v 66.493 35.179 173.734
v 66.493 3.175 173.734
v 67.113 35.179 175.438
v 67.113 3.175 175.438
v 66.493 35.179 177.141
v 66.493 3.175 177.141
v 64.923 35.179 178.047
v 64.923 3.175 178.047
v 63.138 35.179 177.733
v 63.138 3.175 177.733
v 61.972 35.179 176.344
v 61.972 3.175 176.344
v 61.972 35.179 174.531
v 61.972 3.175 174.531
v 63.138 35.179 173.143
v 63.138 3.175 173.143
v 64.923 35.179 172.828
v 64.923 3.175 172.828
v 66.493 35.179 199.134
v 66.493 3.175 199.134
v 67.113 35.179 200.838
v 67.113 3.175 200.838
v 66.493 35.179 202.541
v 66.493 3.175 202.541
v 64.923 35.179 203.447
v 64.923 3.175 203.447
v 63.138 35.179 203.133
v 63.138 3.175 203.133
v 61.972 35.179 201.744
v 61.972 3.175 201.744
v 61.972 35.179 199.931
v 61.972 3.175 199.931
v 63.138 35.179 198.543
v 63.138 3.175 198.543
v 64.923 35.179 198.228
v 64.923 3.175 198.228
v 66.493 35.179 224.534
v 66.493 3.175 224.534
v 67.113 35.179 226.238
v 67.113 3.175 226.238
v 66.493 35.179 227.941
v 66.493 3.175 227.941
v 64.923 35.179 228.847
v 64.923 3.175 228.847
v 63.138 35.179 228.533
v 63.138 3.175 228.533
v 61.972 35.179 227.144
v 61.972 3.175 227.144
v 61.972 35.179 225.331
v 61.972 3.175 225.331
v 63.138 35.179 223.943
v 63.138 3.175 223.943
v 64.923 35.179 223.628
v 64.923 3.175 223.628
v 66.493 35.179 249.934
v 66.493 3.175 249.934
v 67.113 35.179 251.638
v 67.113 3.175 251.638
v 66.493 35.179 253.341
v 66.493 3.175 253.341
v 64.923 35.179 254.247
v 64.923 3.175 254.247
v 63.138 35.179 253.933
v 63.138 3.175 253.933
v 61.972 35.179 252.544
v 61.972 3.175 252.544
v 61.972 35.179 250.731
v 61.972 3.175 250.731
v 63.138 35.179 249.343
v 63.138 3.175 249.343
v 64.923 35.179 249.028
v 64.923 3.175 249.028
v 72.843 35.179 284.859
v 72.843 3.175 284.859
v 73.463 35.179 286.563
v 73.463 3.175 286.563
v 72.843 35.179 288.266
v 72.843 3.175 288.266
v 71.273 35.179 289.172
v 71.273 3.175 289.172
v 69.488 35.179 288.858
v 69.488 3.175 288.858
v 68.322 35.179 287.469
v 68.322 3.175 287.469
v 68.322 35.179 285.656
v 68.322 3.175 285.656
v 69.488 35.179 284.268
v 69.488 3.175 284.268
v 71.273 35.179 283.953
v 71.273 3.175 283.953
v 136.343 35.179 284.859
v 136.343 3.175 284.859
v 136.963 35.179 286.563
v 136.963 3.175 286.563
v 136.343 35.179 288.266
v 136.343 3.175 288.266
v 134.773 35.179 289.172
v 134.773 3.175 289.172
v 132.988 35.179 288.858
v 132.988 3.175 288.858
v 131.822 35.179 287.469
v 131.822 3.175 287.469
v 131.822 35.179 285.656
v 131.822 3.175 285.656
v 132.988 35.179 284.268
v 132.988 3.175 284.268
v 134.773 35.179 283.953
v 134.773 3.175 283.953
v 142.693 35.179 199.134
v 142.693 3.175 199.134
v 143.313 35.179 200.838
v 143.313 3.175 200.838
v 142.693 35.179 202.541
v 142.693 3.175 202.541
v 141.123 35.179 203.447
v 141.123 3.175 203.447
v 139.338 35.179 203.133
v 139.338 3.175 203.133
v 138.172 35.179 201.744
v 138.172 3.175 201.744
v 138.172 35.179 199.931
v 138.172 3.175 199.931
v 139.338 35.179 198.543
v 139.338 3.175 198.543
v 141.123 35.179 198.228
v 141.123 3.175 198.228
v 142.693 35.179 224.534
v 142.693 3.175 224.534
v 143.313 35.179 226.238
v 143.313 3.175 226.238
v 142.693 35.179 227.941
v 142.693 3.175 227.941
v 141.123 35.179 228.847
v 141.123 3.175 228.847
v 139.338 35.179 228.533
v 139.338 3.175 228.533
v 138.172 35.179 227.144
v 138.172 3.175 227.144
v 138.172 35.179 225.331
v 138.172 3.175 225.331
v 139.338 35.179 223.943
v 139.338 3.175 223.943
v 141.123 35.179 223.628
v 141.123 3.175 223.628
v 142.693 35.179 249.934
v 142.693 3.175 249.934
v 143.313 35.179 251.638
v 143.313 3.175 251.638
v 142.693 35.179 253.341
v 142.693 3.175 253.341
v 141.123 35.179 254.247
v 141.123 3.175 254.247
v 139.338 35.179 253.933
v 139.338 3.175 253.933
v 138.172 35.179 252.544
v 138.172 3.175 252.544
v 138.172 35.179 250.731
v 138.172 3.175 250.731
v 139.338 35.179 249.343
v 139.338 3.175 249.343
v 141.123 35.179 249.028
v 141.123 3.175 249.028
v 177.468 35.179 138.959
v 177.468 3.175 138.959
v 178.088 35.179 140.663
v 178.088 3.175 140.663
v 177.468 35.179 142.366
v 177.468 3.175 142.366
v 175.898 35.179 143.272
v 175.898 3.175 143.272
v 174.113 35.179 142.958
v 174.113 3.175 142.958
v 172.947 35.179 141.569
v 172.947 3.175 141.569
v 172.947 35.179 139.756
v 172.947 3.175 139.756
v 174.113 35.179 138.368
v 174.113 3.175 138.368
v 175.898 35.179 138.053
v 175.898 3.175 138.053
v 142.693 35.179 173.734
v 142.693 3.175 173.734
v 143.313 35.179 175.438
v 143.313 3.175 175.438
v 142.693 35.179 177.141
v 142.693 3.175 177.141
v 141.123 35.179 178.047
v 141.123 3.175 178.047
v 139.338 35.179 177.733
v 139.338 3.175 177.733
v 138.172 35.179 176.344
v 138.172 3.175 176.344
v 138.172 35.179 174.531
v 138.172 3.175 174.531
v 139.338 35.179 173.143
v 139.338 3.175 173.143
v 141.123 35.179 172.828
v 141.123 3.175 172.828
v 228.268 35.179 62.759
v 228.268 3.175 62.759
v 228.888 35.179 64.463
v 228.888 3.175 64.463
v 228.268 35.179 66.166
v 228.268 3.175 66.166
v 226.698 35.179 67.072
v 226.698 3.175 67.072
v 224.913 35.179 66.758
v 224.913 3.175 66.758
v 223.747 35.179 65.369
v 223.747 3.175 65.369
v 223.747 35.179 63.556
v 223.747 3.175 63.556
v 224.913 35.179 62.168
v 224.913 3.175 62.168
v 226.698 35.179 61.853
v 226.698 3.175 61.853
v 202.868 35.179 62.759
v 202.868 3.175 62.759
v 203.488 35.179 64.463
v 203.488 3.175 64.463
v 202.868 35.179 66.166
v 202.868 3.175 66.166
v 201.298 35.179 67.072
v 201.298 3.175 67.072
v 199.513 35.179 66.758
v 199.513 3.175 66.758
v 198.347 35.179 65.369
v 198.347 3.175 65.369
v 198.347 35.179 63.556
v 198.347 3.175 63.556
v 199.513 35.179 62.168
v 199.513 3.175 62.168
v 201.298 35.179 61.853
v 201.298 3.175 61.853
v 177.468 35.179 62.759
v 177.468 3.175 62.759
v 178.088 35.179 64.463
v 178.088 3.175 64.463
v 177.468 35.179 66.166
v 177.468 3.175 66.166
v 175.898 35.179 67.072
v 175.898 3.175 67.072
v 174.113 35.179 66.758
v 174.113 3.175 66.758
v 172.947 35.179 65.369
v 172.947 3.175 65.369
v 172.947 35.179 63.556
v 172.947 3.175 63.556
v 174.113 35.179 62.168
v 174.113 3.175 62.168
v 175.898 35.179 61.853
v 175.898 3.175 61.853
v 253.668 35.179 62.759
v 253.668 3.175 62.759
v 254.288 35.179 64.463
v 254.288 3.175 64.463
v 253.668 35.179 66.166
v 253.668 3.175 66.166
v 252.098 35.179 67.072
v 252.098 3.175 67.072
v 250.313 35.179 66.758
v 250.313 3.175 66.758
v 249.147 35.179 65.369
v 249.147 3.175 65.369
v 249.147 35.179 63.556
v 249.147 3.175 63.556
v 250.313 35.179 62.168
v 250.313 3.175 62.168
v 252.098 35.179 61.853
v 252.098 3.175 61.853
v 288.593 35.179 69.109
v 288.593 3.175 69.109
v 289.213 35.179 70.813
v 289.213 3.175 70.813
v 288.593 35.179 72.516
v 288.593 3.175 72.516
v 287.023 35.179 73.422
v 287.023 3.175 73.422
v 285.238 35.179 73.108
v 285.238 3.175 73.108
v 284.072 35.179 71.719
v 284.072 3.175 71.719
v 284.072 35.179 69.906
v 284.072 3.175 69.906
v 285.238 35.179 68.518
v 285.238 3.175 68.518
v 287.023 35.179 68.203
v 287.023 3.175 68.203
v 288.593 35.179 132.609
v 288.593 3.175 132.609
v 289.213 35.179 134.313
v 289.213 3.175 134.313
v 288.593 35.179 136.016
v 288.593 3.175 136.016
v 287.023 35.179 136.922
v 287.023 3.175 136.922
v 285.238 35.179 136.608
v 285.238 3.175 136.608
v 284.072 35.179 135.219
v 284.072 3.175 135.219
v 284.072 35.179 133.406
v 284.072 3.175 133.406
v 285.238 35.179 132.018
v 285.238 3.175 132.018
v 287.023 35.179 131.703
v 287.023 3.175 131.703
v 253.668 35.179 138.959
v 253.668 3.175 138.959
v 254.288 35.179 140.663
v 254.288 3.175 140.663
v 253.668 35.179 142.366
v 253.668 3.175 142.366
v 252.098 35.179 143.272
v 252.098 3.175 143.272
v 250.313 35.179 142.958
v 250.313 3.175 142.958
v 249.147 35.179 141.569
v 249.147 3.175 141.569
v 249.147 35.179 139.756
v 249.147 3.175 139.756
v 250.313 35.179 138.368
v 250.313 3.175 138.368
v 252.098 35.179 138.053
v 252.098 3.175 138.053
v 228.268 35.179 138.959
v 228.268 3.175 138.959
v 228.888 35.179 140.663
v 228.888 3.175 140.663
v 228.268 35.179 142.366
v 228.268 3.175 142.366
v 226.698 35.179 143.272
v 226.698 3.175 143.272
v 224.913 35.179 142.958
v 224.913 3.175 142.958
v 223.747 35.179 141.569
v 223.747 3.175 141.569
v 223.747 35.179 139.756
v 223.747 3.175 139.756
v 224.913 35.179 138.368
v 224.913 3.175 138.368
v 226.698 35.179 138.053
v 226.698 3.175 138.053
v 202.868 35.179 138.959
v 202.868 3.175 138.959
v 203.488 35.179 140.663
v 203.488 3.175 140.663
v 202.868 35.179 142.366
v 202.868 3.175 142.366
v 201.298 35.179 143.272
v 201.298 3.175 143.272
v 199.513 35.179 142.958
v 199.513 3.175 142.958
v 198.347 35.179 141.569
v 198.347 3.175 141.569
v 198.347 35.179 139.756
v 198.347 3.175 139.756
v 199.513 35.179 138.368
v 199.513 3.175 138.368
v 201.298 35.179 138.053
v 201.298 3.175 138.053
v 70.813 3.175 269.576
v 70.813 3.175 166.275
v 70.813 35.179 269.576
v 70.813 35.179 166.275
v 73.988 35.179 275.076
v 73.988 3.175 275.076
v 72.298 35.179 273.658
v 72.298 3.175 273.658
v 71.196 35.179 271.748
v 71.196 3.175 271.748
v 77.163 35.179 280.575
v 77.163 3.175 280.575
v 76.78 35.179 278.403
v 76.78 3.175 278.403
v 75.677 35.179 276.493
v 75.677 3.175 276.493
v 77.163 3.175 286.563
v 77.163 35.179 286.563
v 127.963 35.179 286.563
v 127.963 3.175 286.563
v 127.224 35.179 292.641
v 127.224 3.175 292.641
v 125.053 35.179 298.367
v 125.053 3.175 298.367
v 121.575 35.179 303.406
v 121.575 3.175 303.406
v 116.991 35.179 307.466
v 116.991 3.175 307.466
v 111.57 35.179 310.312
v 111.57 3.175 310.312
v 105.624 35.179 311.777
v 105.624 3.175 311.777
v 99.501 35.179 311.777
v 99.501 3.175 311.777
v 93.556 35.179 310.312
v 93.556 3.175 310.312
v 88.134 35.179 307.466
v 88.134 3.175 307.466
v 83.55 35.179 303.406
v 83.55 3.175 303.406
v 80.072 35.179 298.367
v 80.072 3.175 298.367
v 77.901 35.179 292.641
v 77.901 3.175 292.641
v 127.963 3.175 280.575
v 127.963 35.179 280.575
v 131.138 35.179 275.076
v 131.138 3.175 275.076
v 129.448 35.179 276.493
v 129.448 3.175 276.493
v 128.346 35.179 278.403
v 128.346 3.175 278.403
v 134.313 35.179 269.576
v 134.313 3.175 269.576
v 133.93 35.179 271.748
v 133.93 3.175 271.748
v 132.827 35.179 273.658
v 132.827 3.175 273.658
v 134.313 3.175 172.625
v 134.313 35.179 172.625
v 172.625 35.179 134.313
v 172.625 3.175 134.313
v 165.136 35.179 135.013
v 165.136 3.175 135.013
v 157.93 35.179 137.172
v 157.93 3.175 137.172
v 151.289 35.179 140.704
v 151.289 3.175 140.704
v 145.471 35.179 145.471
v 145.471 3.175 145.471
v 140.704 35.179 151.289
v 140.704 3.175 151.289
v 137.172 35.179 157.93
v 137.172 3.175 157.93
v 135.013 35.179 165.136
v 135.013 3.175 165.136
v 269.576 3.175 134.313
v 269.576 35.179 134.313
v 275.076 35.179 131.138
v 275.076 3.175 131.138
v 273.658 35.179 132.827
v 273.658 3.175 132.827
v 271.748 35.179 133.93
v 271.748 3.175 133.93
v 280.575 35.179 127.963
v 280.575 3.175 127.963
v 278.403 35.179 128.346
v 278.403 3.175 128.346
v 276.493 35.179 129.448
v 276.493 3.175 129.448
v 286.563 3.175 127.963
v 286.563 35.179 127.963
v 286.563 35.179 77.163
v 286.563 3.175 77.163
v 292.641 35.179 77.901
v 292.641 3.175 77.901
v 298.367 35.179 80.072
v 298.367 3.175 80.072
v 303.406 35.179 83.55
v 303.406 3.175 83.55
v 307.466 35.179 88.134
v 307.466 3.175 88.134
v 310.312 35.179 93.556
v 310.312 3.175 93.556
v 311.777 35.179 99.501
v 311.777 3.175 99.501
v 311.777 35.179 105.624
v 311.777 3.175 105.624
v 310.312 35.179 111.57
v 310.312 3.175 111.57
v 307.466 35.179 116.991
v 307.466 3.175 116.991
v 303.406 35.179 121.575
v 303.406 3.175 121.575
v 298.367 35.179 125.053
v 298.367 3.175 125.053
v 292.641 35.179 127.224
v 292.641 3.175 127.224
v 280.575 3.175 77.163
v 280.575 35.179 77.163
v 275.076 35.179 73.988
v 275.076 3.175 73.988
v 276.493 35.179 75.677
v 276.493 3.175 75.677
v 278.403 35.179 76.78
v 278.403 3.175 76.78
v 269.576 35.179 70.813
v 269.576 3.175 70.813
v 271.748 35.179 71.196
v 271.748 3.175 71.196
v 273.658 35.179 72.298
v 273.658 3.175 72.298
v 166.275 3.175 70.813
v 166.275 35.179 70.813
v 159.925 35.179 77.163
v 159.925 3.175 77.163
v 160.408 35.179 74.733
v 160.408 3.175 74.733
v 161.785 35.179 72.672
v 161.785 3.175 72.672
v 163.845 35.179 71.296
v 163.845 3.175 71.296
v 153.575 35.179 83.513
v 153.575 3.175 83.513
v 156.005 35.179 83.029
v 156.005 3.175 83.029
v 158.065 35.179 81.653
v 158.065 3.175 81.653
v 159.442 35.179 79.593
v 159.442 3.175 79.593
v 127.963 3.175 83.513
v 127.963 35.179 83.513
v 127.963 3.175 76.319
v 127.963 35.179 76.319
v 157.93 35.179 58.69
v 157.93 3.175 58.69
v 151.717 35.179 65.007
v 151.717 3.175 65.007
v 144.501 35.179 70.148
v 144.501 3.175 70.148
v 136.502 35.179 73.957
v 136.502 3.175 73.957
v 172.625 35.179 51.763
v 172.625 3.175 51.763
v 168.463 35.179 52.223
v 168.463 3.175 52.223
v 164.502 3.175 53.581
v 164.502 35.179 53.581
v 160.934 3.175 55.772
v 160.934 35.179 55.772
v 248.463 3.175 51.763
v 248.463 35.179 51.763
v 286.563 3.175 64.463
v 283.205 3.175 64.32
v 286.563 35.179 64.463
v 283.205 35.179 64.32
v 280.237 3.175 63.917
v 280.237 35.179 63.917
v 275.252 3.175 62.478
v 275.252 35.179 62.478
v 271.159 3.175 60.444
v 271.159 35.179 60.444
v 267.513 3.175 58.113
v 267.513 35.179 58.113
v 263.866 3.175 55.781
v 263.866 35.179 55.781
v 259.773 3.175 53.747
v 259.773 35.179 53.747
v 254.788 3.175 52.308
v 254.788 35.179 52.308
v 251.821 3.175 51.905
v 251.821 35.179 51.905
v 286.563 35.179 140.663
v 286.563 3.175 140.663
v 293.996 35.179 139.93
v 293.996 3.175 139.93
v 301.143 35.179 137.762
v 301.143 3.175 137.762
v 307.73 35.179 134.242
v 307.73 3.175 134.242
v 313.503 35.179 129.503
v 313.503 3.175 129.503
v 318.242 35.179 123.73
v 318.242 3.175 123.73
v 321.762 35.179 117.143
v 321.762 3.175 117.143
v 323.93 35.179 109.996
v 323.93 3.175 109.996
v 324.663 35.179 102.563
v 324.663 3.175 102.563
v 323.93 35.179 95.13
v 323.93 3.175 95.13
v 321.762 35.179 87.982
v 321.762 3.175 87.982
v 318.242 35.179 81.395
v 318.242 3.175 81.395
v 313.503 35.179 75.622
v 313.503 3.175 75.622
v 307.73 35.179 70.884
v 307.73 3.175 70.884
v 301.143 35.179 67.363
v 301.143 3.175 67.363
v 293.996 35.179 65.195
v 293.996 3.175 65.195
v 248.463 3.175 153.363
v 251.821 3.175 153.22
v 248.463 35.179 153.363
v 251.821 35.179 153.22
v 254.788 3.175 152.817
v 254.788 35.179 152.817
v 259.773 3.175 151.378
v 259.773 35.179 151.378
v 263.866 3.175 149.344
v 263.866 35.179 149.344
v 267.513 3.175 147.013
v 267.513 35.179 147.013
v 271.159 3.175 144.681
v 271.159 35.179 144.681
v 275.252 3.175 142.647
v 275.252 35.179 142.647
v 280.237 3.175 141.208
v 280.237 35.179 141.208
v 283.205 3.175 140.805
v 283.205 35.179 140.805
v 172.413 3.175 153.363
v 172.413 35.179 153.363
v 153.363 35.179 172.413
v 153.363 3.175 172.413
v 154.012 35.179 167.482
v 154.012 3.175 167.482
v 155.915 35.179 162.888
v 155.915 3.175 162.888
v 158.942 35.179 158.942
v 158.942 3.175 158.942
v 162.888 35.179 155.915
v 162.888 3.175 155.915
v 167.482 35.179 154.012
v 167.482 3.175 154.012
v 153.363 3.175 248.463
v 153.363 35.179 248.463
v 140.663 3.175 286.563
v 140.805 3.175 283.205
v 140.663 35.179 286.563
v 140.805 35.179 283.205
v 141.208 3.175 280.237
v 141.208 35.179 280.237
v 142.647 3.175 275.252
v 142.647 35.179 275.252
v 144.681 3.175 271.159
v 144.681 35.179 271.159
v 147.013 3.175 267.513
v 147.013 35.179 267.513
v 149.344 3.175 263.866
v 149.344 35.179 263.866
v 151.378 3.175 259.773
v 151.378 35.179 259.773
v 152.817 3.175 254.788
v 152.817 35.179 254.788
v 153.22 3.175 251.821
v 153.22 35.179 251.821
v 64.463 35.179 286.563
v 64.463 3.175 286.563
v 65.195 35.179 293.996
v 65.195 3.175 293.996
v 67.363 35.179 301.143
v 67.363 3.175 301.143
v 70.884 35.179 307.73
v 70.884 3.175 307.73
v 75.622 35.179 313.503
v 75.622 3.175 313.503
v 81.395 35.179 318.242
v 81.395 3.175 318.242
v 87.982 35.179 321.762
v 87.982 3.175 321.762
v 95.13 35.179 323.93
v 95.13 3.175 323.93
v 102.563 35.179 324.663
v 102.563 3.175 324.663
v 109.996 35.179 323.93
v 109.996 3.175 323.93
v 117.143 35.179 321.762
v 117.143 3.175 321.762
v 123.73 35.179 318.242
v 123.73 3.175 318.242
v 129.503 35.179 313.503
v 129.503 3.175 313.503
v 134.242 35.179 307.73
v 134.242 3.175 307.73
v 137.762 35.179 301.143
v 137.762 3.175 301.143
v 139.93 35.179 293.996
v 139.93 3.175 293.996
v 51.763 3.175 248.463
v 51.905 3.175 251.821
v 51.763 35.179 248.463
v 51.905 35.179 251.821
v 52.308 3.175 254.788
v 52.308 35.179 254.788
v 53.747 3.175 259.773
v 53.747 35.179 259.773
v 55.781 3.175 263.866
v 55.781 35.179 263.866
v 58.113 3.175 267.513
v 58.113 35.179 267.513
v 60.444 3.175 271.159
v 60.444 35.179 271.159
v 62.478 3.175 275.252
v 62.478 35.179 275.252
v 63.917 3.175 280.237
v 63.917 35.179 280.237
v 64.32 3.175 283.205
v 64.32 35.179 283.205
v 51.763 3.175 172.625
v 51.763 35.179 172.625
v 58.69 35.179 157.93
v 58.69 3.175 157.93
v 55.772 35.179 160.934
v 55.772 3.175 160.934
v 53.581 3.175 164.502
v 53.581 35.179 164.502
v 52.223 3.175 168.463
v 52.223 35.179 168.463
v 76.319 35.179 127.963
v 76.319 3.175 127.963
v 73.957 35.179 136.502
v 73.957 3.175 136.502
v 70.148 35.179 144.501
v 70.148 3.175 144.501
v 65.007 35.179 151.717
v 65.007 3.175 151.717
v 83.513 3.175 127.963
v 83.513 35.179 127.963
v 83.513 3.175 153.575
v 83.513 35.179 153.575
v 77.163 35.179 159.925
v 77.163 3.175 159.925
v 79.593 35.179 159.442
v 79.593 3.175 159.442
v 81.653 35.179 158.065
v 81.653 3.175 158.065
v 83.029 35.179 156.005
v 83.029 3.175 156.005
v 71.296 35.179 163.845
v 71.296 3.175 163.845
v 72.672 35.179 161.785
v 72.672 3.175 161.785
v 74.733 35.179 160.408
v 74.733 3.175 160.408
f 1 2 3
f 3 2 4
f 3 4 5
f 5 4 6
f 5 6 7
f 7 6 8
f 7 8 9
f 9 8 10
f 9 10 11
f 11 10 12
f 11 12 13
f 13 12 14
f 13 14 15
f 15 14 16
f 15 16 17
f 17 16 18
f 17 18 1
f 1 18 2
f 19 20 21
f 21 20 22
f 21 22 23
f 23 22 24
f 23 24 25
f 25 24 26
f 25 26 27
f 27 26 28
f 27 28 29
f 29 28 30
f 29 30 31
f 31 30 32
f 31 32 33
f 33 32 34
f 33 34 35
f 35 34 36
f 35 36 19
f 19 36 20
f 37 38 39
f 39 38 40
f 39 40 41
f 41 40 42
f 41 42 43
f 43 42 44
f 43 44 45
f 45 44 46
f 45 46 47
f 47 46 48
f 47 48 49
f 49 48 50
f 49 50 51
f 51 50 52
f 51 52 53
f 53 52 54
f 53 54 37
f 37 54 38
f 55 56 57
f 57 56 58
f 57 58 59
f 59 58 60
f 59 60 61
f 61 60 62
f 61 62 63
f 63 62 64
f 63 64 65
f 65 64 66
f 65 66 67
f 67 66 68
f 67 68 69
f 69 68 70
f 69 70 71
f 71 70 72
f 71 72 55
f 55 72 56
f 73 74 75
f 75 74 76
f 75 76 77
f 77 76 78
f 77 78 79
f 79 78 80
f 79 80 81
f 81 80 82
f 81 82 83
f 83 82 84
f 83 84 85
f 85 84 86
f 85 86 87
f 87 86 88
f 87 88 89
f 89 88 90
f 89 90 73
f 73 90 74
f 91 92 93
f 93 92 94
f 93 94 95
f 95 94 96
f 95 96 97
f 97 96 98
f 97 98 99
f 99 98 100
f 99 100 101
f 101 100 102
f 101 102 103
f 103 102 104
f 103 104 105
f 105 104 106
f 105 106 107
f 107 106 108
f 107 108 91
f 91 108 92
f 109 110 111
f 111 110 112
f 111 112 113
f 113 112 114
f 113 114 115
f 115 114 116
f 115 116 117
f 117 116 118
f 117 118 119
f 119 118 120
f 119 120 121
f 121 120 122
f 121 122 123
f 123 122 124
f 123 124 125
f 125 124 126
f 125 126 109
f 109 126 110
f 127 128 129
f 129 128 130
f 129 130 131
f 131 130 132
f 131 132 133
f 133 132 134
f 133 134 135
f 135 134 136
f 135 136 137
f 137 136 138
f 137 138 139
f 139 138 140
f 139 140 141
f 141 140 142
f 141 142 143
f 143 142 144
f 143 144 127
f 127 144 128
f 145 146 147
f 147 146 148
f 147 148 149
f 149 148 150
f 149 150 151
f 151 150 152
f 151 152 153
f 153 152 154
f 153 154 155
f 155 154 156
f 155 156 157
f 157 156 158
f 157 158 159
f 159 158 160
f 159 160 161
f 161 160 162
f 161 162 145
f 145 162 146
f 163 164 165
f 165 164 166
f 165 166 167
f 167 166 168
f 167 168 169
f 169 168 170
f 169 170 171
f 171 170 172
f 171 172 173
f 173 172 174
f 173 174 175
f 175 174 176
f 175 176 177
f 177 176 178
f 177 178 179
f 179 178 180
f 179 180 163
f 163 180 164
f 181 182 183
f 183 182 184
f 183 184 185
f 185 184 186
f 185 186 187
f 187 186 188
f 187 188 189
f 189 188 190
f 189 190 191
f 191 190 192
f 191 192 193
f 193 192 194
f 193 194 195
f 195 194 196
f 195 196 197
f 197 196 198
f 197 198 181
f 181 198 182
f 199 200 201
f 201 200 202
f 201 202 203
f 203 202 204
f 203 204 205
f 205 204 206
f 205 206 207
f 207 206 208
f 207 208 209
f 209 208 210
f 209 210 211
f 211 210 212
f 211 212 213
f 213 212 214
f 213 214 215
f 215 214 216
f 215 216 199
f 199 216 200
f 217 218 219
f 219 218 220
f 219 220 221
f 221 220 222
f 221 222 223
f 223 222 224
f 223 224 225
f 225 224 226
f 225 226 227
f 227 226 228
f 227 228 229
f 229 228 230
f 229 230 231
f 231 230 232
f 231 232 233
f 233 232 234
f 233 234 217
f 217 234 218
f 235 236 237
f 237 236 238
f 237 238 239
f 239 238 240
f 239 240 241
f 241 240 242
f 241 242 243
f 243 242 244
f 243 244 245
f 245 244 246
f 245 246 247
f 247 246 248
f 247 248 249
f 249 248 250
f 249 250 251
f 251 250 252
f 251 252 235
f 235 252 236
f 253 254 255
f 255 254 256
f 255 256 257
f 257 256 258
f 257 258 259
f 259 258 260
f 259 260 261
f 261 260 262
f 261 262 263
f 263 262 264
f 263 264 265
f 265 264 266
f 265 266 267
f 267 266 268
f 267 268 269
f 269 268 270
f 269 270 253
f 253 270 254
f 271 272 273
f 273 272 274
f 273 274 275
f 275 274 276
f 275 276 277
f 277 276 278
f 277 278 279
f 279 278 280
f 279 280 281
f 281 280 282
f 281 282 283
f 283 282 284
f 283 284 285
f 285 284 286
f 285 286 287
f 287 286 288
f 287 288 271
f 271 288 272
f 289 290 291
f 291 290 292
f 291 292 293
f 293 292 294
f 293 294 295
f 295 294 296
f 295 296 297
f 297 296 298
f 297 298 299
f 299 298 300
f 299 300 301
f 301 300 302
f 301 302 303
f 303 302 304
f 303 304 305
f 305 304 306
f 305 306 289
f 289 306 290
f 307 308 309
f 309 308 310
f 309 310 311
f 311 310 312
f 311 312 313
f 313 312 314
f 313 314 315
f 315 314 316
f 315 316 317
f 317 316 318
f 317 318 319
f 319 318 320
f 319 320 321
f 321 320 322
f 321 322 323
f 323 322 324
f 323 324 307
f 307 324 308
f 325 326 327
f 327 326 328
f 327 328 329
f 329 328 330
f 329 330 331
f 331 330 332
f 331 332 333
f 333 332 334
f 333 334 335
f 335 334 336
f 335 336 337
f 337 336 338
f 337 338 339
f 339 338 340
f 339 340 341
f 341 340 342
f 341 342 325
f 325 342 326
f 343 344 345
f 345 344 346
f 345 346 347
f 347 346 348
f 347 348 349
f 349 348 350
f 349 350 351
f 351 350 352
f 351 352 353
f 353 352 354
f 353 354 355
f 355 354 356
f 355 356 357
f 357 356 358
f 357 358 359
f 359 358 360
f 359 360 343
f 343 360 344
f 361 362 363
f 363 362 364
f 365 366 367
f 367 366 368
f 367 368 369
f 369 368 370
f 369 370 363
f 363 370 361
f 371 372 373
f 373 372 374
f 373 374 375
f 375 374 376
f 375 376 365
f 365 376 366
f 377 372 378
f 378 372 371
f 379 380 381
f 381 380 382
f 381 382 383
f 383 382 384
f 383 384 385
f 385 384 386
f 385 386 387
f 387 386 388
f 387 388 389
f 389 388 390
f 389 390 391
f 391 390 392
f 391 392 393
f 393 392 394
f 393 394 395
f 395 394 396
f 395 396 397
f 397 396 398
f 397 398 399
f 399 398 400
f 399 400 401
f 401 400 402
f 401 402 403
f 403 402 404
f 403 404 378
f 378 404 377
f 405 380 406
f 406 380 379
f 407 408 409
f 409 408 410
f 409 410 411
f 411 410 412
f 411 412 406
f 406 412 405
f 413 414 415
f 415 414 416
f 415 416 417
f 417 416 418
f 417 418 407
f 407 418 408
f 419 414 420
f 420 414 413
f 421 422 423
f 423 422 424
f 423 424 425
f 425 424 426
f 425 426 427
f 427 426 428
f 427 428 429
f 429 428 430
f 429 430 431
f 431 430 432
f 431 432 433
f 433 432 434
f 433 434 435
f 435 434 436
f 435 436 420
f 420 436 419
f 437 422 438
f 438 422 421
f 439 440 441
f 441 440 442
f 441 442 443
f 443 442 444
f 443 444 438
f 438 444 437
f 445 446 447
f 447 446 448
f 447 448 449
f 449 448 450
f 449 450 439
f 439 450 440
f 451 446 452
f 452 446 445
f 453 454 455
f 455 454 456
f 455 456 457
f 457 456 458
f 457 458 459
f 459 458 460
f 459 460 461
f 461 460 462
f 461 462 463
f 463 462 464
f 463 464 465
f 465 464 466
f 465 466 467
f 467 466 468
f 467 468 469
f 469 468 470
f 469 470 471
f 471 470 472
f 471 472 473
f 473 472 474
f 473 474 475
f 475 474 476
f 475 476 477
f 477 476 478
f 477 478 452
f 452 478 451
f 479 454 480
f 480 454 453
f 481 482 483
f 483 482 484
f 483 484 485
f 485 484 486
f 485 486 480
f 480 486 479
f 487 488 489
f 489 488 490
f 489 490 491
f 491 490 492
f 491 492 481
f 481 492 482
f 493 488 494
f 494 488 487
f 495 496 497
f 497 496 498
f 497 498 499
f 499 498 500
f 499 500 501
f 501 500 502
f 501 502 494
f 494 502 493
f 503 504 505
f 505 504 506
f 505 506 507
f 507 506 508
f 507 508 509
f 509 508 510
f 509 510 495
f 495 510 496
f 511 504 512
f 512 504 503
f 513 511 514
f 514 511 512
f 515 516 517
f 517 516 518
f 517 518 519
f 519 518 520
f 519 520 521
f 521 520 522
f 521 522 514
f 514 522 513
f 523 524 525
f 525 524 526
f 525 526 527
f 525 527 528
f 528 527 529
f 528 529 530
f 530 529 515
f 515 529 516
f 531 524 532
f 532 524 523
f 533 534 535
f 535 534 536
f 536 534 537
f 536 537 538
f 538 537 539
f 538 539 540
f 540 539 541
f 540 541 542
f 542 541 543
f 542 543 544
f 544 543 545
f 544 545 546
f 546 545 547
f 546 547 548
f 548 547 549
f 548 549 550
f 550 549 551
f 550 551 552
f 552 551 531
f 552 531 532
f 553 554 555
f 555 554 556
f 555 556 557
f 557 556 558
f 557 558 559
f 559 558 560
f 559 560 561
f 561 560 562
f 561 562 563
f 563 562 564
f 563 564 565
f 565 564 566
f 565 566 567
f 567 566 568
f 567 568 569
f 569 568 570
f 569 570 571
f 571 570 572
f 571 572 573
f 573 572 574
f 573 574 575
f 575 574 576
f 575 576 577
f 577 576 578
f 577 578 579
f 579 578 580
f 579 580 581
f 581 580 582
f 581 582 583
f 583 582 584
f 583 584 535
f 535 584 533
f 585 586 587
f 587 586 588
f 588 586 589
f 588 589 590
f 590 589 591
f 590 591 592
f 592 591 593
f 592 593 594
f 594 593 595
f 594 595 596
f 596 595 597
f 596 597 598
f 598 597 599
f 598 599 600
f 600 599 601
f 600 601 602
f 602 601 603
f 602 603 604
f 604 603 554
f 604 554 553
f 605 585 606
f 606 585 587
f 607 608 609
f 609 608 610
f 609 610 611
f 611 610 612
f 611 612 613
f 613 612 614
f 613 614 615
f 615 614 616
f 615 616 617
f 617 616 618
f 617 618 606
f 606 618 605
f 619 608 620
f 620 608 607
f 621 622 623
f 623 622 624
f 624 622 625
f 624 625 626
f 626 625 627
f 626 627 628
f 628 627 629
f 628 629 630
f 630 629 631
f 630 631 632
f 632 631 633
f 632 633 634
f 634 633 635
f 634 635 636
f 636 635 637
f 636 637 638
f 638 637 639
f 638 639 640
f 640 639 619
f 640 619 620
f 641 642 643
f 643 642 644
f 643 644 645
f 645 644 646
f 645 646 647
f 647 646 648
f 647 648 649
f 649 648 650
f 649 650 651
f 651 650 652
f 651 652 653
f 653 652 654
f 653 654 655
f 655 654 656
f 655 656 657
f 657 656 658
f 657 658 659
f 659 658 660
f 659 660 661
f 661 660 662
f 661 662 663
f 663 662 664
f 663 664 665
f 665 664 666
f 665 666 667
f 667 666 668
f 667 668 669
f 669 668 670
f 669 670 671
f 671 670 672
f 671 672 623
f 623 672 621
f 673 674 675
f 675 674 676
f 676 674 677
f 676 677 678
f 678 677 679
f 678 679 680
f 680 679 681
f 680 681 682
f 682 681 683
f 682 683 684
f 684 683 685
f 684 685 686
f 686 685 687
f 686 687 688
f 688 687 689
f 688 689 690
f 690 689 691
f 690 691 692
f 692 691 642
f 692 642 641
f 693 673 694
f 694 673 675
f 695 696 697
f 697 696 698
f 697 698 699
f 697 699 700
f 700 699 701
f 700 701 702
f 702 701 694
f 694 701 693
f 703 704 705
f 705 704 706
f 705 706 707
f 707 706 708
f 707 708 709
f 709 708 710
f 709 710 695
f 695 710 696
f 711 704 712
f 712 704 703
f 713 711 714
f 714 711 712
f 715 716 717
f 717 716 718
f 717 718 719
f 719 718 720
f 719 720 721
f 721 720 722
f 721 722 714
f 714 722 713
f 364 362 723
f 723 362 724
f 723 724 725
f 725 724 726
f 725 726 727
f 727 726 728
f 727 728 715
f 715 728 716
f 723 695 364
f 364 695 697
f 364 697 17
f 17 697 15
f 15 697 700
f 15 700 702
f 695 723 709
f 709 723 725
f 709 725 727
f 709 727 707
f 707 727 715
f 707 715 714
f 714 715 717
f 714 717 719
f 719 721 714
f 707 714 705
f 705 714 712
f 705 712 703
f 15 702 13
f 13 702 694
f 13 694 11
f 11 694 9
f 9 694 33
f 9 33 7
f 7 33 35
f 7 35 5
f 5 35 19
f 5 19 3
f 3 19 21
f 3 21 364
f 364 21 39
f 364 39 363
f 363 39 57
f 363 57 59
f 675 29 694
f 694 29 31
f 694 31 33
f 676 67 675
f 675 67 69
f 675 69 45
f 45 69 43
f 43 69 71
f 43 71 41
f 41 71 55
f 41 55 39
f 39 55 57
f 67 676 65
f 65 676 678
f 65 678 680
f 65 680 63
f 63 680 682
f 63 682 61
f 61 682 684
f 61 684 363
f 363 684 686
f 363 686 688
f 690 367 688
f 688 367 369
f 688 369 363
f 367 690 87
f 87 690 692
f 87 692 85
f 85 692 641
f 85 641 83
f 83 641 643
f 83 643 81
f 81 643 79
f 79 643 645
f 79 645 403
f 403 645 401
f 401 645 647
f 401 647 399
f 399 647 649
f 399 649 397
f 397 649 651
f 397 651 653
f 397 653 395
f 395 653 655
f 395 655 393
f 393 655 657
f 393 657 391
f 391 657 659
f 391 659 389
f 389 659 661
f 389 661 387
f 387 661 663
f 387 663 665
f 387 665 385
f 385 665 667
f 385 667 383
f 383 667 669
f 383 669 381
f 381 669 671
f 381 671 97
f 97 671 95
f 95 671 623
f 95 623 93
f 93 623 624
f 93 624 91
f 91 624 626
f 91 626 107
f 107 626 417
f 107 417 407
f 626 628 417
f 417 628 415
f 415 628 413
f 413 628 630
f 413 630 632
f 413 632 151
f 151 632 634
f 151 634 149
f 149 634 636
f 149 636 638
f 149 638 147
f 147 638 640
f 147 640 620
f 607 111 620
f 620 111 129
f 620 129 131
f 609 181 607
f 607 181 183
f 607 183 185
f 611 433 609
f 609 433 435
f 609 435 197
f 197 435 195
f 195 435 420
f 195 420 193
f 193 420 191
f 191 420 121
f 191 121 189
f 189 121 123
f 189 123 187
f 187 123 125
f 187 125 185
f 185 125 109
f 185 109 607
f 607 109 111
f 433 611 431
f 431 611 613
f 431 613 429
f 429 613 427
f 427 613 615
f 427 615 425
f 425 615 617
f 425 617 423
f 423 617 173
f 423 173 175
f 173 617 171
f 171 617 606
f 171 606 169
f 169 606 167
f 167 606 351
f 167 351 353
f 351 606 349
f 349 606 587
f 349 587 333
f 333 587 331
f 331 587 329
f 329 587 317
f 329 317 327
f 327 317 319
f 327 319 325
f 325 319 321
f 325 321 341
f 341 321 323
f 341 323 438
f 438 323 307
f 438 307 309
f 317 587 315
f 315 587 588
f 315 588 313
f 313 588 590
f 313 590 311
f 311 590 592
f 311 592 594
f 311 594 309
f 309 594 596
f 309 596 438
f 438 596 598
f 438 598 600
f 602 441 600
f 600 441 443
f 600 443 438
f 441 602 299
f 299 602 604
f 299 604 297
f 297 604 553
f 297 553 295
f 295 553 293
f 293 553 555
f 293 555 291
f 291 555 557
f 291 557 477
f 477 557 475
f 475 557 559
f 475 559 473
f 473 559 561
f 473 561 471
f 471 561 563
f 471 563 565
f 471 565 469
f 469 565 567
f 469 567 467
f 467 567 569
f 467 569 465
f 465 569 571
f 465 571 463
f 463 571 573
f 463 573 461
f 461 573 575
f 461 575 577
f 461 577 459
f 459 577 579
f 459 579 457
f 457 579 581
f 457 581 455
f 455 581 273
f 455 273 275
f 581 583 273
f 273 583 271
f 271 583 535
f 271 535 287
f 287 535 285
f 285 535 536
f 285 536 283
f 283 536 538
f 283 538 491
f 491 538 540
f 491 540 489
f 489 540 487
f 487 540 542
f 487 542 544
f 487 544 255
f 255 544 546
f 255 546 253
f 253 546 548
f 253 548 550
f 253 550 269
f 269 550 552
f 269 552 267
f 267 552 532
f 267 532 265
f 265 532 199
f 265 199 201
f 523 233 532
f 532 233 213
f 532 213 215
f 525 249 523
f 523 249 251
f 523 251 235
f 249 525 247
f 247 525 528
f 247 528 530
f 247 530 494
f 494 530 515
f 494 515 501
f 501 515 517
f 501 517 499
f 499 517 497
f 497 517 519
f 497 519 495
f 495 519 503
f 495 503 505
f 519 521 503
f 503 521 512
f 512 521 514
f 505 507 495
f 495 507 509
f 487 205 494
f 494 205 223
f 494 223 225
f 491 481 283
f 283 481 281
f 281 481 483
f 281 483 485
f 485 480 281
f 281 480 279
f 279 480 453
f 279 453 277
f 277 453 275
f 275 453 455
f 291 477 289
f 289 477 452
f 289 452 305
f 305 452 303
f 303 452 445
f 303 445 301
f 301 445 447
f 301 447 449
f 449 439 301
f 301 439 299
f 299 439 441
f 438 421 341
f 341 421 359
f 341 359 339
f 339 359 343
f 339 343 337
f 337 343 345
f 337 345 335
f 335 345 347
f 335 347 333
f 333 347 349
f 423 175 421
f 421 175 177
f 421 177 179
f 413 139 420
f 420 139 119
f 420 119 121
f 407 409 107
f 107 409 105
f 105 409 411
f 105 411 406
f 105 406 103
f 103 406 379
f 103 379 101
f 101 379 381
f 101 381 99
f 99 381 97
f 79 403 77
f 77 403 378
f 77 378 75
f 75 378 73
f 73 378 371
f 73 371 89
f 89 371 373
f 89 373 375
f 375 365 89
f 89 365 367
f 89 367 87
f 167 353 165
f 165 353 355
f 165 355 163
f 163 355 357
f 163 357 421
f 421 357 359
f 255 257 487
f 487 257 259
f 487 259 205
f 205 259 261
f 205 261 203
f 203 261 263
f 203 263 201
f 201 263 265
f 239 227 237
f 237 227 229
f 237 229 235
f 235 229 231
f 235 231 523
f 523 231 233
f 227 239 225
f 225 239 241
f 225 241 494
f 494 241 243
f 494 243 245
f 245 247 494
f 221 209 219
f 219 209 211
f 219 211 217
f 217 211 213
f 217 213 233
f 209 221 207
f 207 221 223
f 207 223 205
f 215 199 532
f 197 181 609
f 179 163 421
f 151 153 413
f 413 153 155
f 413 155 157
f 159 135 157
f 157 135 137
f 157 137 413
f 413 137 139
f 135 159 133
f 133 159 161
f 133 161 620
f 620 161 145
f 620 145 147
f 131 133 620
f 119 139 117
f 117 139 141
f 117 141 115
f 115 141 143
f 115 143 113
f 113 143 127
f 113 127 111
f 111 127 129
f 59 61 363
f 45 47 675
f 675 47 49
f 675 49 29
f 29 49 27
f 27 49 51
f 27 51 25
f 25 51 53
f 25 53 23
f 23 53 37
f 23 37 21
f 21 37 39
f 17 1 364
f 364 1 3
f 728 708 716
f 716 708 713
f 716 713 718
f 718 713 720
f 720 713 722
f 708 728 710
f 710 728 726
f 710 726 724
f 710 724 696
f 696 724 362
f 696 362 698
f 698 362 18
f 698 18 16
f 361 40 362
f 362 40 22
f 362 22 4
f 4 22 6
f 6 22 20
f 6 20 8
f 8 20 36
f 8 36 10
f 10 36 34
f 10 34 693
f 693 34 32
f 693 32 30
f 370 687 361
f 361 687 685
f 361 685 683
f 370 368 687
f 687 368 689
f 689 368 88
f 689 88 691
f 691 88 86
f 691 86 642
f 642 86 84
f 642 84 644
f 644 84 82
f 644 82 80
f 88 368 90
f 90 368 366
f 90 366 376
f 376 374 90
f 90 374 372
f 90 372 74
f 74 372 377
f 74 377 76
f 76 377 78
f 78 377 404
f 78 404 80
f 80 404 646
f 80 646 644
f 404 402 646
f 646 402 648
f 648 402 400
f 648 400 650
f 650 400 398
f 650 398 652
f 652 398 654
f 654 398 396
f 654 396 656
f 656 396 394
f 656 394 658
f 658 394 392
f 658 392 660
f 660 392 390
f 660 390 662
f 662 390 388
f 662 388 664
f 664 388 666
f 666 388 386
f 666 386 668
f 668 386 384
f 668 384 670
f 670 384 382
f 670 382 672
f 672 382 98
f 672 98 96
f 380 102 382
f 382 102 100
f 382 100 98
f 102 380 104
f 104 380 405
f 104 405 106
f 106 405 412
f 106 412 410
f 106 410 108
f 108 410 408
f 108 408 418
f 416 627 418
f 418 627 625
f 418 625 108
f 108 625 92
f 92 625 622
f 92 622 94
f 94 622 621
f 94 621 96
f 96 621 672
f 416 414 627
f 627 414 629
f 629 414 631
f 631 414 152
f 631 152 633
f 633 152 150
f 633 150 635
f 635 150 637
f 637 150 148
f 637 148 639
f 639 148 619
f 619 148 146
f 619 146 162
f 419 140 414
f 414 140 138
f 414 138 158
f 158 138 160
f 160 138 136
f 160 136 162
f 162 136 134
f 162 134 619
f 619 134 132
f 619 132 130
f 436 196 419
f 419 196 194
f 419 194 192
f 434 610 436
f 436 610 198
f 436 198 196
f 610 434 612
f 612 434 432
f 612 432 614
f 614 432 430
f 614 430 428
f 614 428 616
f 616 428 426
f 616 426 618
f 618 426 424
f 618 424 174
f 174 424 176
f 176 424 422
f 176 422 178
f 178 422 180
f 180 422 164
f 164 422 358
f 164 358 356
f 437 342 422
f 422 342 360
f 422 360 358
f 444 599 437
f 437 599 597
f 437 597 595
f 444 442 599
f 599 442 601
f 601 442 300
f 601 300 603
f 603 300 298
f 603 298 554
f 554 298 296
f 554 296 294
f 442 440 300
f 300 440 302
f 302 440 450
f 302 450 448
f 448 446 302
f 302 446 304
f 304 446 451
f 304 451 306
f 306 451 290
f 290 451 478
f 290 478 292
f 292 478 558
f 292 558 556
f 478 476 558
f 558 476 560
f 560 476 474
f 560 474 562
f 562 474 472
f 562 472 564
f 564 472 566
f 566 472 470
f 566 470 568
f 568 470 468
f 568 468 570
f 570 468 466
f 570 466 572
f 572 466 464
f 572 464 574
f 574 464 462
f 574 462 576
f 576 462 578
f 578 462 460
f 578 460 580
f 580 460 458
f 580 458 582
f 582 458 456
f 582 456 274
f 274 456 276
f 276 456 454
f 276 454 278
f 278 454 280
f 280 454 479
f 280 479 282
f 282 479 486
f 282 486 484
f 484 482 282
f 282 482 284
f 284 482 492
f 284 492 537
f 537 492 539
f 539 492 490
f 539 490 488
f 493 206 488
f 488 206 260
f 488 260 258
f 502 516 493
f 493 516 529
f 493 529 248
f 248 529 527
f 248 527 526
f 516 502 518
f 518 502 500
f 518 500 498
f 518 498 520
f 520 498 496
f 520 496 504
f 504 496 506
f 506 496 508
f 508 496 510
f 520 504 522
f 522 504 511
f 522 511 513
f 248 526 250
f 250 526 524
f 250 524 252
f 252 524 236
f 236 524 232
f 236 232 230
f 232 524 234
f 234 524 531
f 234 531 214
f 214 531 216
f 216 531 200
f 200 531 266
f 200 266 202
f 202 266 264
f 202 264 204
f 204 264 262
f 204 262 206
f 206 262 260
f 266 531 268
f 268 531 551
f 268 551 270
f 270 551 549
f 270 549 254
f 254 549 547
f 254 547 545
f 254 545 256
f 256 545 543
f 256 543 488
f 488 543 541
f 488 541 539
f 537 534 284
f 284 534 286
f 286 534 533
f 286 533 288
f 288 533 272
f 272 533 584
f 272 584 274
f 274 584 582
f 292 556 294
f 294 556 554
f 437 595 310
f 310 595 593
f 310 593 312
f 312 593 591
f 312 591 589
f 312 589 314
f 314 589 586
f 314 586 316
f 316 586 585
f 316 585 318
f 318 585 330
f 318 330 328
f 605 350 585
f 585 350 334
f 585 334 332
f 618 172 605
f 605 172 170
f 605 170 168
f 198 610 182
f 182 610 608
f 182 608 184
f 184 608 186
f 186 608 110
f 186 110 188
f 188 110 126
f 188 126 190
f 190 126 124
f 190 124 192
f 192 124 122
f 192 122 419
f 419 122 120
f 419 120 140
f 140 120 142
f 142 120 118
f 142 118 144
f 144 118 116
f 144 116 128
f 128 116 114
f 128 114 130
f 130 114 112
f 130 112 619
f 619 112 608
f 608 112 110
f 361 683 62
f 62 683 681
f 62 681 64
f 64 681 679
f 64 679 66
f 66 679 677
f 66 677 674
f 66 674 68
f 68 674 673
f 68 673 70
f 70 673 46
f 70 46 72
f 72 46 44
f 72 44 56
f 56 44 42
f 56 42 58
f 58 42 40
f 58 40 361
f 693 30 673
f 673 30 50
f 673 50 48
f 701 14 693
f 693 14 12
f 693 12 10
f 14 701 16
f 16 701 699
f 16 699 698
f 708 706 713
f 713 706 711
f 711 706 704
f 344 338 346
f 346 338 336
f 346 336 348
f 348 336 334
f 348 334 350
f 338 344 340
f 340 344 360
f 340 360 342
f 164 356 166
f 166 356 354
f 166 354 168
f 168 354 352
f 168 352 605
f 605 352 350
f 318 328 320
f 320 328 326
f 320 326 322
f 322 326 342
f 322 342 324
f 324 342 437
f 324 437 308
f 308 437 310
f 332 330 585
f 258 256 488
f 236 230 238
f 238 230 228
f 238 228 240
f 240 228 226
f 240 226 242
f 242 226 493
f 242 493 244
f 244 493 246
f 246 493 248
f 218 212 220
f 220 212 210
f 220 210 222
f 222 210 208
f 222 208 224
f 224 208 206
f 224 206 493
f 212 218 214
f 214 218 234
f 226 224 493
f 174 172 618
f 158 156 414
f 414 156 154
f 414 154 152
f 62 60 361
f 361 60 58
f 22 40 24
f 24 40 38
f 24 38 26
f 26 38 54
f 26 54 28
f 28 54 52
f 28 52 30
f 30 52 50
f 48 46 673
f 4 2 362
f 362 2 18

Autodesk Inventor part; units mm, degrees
ref_plane "YZ Plane" through (0, 0, 0) normal (1, 0, 0) x (0, 1, 0)
ref_plane "XZ Plane" through (0, 0, 0) normal (0, 1, 0) x (-1, 0, 0)
ref_plane "XY Plane" through (0, 0, 0) normal (0, 0, 1) x (1, 0, 0)
ref_plane "Work Plane1" through (153.3626, 3.175, 315.1376) normal (0, 1, 0) x (1, 0, 0)
sketch "Sketch2" plane through (153.3626, 3.175, 315.1376) normal (0, 1, 0) x (1, 0, 0)
  circle A0 centre (-50.8, 212.575) radius 6.35 projected
  line L0 (-50.8, 212.575) -> (-50.8, 187.175)
  line L1 (-50.8, 187.175) -> (-102.9735, 187.175)
  circle A1 centre (-88.9, 139.7) radius 2.65 projected
  circle A2 centre (-88.9, 114.3) radius 2.65 projected
  line L2 (-101.6, 142.5126) -> (-101.6, 66.675) projected
  line L3 (-50.8, 212.575) -> (-25.4, 212.575)
  line L4 (-25.4, 212.575) -> (-25.4, 238.8185)
  line L5 (-101.6, 142.5126) -> (-101.6, 66.675)
  arc A3 (-88.9, 28.575) -> (-12.7, 28.575) centre (-50.8, 28.575) ccw projected
  circle A4 centre (-50.8, 28.575) radius 38.1
  line L6 (-101.6, 66.675) -> (-82.55, 66.675)
  line L7 (-82.55, 45.5611) -> (-82.55, 142.5126)
  arc A5 (-76.2, 28.575) -> (-25.4, 28.575) centre (-50.8, 28.575) ccw
  line L8 (-82.55, 66.675) -> (-76.2, 66.675)
  line L9 (-76.2, 34.5626) -> (-76.2, 28.575)
  line L10 (-101.6, 142.5126) -> (-82.55, 142.5126)
  line L11 (-82.55, 40.9126) -> (-82.55, 40.9126)
  arc A6 (-76.2, 34.5626) -> (-79.375, 40.0618) centre (-82.55, 34.5626) ccw
  arc A7 (-82.55, 45.5611) -> (-79.375, 40.0618) centre (-76.2, 45.5611) ccw
  line L12 (-82.55, 142.5126) -> (-82.55, 148.8626)
  line L13 (-76.2, 155.2126) -> (-76.2, 155.2126)
  line L14 (-69.85, 161.5626) -> (-69.85, 187.175)
  arc A8 (-76.2, 155.2126) -> (-69.85, 161.5626) centre (-76.2, 161.5626) ccw
  arc A9 (-76.2, 155.2126) -> (-82.55, 148.8626) centre (-76.2, 148.8626) ccw
  line L15 (-19.05, 45.5611) -> (-19.05, 142.5126)
  line L16 (-25.4, 34.5626) -> (-25.4, 28.575)
  arc A10 (-22.225, 40.0618) -> (-25.4, 34.5626) centre (-19.05, 34.5626) ccw
  arc A11 (-22.225, 40.0618) -> (-19.05, 45.5611) centre (-25.4, 45.5611) ccw
  arc A12 (19.05, 161.775) -> (0, 142.725) centre (19.05, 142.725) ccw projected
  circle A13 centre (19.05, 142.725) radius 19.05
  circle A14 centre (19.05, 142.725) radius 38.1006
  line L17 (-50.8, 212.575) -> (-25.4, 212.575)
  line L18 (-25.4, 212.575) -> (-25.4, 264.7485)
  circle A15 centre (22.075, 250.675) radius 2.65
  circle A16 centre (47.475, 250.675) radius 2.65
  line L19 (19.2624, 263.375) -> (95.1, 263.375)
  line L20 (-50.8, 212.575) -> (-50.8, 187.175)
  line L21 (19.2624, 263.375) -> (95.1, 263.375)
  arc A17 (133.2, 174.475) -> (133.2, 250.675) centre (133.2, 212.575) ccw
  circle A18 centre (133.2, 212.575) radius 38.1
  line L22 (95.1, 263.375) -> (95.1, 244.325)
  line L23 (116.2139, 244.325) -> (19.2624, 244.325)
  arc A19 (133.2, 187.175) -> (133.2, 237.975) centre (133.2, 212.575) ccw
  line L24 (95.1, 244.325) -> (95.1, 237.975)
  line L25 (127.2124, 237.975) -> (133.2, 237.975)
  line L26 (120.8624, 244.325) -> (120.8624, 244.325)
  arc A20 (121.7132, 241.15) -> (127.2124, 237.975) centre (127.2124, 244.325) ccw
  arc A21 (121.7132, 241.15) -> (116.2139, 244.325) centre (116.2139, 237.975) ccw
  line L27 (19.2624, 244.325) -> (12.9124, 244.325)
  line L28 (6.5624, 237.975) -> (6.5624, 237.975)
  line L29 (0.2124, 231.625) -> (-25.4, 231.625)
  arc A22 (0.2124, 231.625) -> (6.5624, 237.975) centre (0.2124, 237.975) ccw
  arc A23 (12.9124, 244.325) -> (6.5624, 237.975) centre (12.9124, 237.975) ccw
  line L30 (116.2139, 180.825) -> (19.2624, 180.825)
  arc A24 (127.2124, 187.175) -> (121.7132, 184) centre (127.2124, 180.825) ccw
  arc A25 (116.2139, 180.825) -> (121.7132, 184) centre (116.2139, 187.175) ccw
  line L31 (127.2124, 187.175) -> (133.2, 187.175)
  arc A26 (-34.6191, 237.975) -> (4.5675, 256.4477) centre (-34.6191, 288.775) ccw projected
  arc A27 (-25.4, 238.8185) -> (4.5675, 256.4477) centre (-34.6191, 288.775) ccw
  arc A28 (19.2624, 263.375) -> (4.5675, 256.4477) centre (19.2624, 244.325) ccw projected
  arc A29 (19.2624, 263.375) -> (4.5675, 256.4477) centre (19.2624, 244.325) ccw
  line L32 (0, 66.675) -> (0, 142.725) projected
  line L33 (0, 142.725) -> (0, 25.7278)
  arc A30 (-94.6727, 157.2075) -> (-101.6, 142.5126) centre (-82.55, 142.5126) ccw projected
  arc A31 (-94.6727, 157.2075) -> (-101.6, 142.5126) centre (-82.55, 142.5126) ccw
  arc A32 (-94.6727, 157.2075) -> (-76.2, 196.3941) centre (-127, 196.3941) ccw projected
  arc A33 (-94.6727, 157.2075) -> (-76.2, 196.3941) centre (-127, 196.3941) ccw
  line L34 (19.05, 161.775) -> (95.1, 161.775)
  line L35 (-101.6, 66.675) -> (-101.6, 47.625) construction
  line L36 (-101.6, 47.625) -> (-88.9, 47.625) construction
  line L37 (-88.9, 47.625) -> (-88.9, 28.575) construction
  spline S0 degree 3 poles (-101.6, 66.675) (-101.6, 47.625) (-88.9, 47.625) (-88.9, 28.575) knots 1 1 1 1 2 2 2 2
  line L38 (-50.8, 28.575) -> (-50.8, 60.9646)
  spline S1 degree 3 poles (0, 66.675) (0, 47.625) (-12.7, 47.625) (-12.7, 28.575) knots 1 1 1 1 2 2 2 2
  line L39 (0, 66.675) -> (0, 47.625) construction
  line L40 (0, 47.625) -> (-12.7, 47.625) construction
  line L41 (-12.7, 47.625) -> (-12.7, 28.575) construction
  spline S2 degree 3 poles (95.1, 263.375) (114.15, 263.375) (114.15, 250.675) (133.2, 250.675) knots 1 1 1 1 2 2 2 2
  line L42 (95.1, 263.375) -> (114.15, 263.375) construction
  line L43 (114.15, 263.375) -> (114.15, 250.675) construction
  line L44 (114.15, 250.675) -> (133.2, 250.675) construction
  spline S3 degree 3 poles (95.1, 161.775) (114.15, 161.775) (114.15, 174.475) (133.2, 174.475) knots 1 1 1 1 2 2 2 2
  line L45 (95.1, 161.775) -> (114.15, 161.775) construction
  line L46 (114.15, 161.775) -> (114.15, 174.475) construction
  line L47 (114.15, 174.475) -> (133.2, 174.475) construction
  circle A34 centre (-88.9, 88.9) radius 2.65 projected
  circle A35 centre (-88.9, 88.9) radius 2.65
  circle A36 centre (-88.9, 63.5) radius 2.65 projected
  circle A37 centre (-88.9, 63.5) radius 2.65
  circle A38 centre (-82.55, 28.575) radius 2.65 projected
  circle A39 centre (-82.55, 28.575) radius 2.65
  circle A40 centre (-19.05, 28.575) radius 2.65 projected
  circle A41 centre (-19.05, 28.575) radius 2.65
  circle A42 centre (-12.7, 63.5) radius 2.65 projected
  circle A43 centre (-12.7, 63.5) radius 2.65
  circle A44 centre (-12.7, 88.9) radius 2.65 projected
  circle A45 centre (-12.7, 88.9) radius 2.65
  circle A46 centre (-12.7, 114.3) radius 2.65 projected
  circle A47 centre (-12.7, 114.3) radius 2.65
  circle A48 centre (-12.7, 139.7) radius 2.65 projected
  circle A49 centre (-12.7, 139.7) radius 2.65
  circle A50 centre (22.075, 174.475) radius 2.65 projected
  circle A51 centre (22.075, 174.475) radius 2.65
  circle A52 centre (47.475, 174.475) radius 2.65 projected
  circle A53 centre (47.475, 174.475) radius 2.65
  circle A54 centre (72.875, 174.475) radius 2.65 projected
  circle A55 centre (72.875, 174.475) radius 2.65
  circle A56 centre (98.275, 174.475) radius 2.65 projected
  circle A57 centre (98.275, 174.475) radius 2.65
  circle A58 centre (133.2, 180.825) radius 2.65 projected
  circle A59 centre (133.2, 180.825) radius 2.65
  circle A60 centre (133.2, 244.325) radius 2.65 projected
  circle A61 centre (133.2, 244.325) radius 2.65
  circle A62 centre (98.275, 250.675) radius 2.65 projected
  circle A63 centre (98.275, 250.675) radius 2.65
  circle A64 centre (72.875, 250.675) radius 2.65
  point P0 (-153.3626, 315.1376)
  point P1 (-82.55, 155.2126)
  point P2 (-69.85, 155.2126)
  point P3 (6.5624, 244.325)
  point P4 (6.5624, 231.625)
  point P5 (-77.0435, 187.175)
  point P6 (-88.9, 28.575)
  point P7 (-12.7, 28.575)
  point P8 (133.2, 174.475)
  point P9 (133.2, 250.675)
  point P10 (-25.4, 238.8185)
  point P11 (6.5624, 237.975)
  point P12 (19.2624, 244.325)
  dimension "d40" = 25.4
  dimension "d43" = 19.05
  dimension "d46" = 12.7
  dimension "d47" = 76.2
  dimension "d48" = 101.6
  dimension "d49" = 6.35
  dimension "d50" = 12.7
  dimension "d51" = 12.7
  dimension "d52" = 6.35
  dimension "d53" = 19.05
  dimension "d54" = 19.05
extrude "Extrusion2" add sketch "Sketch2" along normal blind 32.004 contours L4 A26 A28 L19 L22 L23 L27 A23 A22 L29 | L14 A8 A9 L12 L10 A30 A32 L1 | L10 L7 L6 L2 | S2 A18 L23 L22 | L6 L7 A4 S0 | A17 A18 L30 A25 A24 L31 A19 L25 A20 A21 L23 | A4 L7 A7 A6 L9 A5 L16 A10 A11 L15 A3 | A4 L15 A14 L32 S1 | A18 S3 L34 A14 L30 | A14 L34 A12 L32
properties part number "Gearbox Cover Large"
